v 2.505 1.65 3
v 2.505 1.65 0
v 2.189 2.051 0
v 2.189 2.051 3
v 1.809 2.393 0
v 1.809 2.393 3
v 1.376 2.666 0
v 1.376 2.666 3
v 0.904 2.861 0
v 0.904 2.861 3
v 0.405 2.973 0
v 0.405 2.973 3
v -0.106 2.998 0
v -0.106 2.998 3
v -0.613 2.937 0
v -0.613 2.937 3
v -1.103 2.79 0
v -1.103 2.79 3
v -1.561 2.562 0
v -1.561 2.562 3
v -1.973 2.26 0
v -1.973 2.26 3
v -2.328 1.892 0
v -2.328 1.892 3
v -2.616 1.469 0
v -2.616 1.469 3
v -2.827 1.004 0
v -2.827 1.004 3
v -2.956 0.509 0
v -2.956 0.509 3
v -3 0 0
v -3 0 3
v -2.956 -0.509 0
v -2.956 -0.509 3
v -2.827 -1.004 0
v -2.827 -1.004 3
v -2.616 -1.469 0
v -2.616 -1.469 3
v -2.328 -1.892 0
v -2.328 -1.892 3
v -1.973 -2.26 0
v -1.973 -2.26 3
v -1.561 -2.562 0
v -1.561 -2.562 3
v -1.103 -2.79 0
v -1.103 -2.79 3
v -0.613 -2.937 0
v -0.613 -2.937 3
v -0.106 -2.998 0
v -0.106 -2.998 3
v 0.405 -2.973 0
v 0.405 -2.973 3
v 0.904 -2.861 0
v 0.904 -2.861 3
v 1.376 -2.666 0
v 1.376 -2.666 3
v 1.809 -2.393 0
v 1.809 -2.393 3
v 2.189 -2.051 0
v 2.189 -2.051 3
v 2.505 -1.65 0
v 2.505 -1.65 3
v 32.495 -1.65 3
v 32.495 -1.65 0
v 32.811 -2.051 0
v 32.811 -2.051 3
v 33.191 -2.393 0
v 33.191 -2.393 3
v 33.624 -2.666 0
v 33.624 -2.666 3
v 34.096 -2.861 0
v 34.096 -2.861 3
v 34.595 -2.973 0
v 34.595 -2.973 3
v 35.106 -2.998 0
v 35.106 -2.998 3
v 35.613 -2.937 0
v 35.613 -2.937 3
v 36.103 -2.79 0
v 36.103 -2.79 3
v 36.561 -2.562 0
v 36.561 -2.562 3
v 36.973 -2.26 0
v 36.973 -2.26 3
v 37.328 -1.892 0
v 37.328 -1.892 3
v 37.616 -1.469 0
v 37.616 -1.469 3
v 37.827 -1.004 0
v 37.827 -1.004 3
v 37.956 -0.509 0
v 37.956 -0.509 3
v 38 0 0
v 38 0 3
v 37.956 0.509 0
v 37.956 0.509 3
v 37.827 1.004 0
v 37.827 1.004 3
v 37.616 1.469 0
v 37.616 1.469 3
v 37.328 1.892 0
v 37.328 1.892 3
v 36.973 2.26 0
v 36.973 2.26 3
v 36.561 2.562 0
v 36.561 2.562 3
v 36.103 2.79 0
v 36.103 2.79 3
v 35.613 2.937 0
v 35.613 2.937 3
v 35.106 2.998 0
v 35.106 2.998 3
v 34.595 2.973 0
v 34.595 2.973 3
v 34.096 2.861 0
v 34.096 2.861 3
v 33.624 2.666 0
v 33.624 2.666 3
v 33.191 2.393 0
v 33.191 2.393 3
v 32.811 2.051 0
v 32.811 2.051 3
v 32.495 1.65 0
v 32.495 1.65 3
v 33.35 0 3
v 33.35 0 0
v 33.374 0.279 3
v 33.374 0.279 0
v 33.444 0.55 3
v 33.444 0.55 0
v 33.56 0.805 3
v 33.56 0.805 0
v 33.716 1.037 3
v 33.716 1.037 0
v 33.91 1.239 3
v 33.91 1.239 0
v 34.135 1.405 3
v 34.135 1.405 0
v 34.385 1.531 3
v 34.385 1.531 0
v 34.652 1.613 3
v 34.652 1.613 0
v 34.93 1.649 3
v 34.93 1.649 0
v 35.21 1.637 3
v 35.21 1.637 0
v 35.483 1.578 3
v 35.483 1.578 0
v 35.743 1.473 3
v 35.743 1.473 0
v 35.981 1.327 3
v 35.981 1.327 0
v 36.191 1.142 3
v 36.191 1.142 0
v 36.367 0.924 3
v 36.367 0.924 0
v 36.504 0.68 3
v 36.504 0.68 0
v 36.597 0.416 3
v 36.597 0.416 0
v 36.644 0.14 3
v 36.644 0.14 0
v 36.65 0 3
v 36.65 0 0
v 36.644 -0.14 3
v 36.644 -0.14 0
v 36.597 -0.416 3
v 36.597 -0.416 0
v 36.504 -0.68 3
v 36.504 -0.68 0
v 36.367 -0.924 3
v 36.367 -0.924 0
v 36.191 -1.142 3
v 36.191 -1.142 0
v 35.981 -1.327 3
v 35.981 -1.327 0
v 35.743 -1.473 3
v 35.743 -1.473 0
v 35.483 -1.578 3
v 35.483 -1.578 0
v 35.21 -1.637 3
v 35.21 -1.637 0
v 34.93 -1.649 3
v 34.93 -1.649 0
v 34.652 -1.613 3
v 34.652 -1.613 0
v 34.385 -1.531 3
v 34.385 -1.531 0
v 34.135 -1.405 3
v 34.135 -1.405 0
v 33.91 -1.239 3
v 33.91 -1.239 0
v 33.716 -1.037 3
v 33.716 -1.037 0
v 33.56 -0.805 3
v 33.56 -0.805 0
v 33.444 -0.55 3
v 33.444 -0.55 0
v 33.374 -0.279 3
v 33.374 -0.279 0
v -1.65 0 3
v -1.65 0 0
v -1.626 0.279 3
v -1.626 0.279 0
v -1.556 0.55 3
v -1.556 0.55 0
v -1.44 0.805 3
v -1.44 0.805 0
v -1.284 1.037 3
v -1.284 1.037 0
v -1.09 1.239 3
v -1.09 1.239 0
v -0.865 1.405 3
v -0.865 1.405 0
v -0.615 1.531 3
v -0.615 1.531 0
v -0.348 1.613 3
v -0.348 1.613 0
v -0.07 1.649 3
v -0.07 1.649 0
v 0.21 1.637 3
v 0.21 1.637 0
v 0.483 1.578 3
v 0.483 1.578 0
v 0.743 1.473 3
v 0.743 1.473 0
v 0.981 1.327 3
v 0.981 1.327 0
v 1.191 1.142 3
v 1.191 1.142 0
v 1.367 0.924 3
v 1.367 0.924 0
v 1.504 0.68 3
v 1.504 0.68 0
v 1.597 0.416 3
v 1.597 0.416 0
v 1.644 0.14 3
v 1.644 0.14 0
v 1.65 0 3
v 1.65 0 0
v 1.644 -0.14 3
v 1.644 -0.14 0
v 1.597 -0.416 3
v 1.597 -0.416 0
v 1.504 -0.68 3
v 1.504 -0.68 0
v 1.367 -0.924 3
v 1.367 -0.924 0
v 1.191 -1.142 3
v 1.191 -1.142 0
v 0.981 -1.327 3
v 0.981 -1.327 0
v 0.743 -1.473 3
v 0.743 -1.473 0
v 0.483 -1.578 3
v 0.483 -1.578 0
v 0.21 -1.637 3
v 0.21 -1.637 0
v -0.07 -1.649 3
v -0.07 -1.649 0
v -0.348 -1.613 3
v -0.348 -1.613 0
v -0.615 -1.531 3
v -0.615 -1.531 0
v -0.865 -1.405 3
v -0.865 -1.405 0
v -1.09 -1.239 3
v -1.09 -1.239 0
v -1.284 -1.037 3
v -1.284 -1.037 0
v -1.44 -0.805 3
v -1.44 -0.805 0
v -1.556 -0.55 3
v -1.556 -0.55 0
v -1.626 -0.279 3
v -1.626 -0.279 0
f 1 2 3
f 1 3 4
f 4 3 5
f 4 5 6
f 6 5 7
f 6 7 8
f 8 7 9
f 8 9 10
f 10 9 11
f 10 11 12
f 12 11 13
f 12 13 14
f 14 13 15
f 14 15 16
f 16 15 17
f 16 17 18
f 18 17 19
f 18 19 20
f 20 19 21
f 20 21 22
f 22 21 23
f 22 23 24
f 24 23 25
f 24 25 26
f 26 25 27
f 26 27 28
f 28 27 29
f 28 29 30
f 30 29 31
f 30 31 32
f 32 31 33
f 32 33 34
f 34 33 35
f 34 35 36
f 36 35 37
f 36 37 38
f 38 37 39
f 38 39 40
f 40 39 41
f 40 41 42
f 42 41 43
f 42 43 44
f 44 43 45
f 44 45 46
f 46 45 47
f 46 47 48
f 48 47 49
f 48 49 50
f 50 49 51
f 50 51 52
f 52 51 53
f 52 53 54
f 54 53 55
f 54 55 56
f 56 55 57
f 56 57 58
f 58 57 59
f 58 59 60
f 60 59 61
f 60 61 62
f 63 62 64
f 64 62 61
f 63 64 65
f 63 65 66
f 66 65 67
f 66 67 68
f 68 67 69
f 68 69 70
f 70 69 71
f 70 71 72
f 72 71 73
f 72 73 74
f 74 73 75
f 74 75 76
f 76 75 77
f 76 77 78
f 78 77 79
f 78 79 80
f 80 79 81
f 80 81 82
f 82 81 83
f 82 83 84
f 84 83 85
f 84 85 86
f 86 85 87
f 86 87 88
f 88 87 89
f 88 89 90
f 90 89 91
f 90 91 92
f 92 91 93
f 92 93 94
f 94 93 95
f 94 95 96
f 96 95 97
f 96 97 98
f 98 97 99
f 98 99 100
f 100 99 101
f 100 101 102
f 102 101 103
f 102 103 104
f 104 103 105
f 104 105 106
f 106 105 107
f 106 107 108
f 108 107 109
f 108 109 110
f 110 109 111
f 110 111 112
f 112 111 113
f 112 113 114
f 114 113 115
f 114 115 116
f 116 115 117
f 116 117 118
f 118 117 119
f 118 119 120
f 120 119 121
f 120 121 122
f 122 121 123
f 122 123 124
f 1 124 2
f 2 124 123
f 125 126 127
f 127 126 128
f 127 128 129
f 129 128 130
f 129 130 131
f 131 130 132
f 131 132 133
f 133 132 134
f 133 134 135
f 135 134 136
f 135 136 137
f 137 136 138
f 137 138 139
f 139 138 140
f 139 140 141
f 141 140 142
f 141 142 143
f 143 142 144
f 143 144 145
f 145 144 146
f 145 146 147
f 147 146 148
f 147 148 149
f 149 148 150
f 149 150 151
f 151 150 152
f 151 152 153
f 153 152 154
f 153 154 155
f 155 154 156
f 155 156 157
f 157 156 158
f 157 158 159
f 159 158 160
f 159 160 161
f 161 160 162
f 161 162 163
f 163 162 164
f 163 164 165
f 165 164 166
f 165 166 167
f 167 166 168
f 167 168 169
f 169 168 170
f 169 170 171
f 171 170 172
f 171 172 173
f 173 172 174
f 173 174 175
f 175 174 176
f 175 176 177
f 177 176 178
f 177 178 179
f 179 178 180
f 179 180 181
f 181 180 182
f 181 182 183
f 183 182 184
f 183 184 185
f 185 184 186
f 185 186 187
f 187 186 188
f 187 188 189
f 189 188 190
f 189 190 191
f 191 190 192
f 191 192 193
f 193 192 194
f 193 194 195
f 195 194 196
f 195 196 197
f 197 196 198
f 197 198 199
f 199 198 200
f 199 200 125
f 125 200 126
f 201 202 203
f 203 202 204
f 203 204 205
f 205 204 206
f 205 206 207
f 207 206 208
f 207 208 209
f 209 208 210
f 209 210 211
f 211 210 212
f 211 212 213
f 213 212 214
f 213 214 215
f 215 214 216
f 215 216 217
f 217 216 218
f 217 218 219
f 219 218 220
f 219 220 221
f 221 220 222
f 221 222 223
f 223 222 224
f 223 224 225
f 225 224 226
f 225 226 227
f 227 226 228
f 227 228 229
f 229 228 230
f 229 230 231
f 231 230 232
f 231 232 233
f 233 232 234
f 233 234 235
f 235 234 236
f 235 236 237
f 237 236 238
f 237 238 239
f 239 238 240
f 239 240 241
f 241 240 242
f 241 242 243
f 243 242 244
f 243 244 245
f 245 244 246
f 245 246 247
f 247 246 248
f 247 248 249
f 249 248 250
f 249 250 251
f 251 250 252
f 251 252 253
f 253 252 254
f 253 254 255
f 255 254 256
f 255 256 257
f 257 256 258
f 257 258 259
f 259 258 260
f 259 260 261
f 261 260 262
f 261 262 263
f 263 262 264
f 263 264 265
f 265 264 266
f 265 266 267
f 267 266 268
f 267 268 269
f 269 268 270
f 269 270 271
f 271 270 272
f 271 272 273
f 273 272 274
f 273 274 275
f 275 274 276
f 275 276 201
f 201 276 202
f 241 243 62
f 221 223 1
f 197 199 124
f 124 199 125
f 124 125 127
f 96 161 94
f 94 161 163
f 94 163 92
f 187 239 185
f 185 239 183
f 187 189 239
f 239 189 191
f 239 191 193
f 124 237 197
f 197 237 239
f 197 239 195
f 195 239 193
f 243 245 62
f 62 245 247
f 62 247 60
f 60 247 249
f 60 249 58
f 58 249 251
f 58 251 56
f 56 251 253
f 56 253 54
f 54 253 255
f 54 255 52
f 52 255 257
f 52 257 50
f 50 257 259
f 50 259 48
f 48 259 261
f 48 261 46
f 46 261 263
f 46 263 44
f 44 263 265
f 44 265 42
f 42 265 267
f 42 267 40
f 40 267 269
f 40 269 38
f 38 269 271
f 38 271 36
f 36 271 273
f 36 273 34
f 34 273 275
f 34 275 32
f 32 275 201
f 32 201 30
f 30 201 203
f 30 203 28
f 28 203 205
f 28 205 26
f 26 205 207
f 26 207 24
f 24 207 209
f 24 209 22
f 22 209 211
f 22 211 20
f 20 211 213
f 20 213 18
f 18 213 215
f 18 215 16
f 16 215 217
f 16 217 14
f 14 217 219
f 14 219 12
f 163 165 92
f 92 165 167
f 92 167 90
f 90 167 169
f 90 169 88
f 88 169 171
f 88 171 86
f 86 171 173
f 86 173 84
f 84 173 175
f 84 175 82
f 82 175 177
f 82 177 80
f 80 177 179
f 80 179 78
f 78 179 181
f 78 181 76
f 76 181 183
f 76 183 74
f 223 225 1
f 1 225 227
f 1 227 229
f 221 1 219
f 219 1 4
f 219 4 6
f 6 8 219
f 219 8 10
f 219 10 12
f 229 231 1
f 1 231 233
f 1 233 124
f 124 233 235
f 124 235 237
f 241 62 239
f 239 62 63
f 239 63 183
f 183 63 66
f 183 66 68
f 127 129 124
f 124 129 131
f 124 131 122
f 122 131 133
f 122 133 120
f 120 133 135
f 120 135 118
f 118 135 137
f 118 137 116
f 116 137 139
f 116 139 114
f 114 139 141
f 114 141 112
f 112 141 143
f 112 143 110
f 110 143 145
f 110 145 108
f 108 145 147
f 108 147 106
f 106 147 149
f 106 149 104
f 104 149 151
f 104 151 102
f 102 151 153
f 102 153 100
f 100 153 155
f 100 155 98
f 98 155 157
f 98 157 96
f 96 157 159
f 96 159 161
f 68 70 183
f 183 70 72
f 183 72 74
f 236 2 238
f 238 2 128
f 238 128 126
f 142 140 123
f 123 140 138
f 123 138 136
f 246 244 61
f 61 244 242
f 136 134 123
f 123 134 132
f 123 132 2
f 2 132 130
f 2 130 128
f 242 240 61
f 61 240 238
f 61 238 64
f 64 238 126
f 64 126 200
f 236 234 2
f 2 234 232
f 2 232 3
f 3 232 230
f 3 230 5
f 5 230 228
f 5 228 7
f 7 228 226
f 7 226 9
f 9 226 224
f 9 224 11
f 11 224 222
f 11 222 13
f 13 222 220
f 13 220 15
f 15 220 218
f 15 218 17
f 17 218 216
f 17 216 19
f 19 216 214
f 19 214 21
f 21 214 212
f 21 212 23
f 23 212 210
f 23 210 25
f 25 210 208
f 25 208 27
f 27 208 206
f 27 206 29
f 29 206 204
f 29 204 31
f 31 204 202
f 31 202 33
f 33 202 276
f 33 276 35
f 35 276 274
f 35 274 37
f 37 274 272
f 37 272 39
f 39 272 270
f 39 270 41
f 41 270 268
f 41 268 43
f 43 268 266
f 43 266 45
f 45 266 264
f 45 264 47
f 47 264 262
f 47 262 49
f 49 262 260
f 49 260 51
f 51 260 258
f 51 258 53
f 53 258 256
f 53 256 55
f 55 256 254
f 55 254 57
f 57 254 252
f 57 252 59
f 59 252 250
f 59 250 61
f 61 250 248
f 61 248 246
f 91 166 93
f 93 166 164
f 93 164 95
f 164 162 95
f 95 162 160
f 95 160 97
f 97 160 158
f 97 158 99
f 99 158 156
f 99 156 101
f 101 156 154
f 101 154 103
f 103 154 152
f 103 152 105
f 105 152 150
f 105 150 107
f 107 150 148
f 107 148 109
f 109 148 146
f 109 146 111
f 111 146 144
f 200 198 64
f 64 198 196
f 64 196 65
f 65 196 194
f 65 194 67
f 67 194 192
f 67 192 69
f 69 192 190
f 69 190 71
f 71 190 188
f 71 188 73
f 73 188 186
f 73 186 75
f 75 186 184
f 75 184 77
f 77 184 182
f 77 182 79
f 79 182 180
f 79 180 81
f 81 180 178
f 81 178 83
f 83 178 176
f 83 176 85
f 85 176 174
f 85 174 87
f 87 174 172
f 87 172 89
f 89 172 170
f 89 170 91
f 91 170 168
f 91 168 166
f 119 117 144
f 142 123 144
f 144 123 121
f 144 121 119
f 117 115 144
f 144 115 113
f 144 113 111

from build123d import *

# Parameters (mm, degrees)
EXTRUDE_1_DEPTH = 3


with BuildPart() as part:
    # 草图1 → 凸台-拉伸1 (new body)
    with BuildSketch(Plane.XY):
        with BuildLine():
            Line((32.494506037, 1.65), (2.505493963, 1.65))
            ThreePointArc((2.505493963, 1.65), (2.87371553, 0.86125435), (3, 0))
            ThreePointArc((3, 0), (2.87371553, -0.86125435), (2.505493963, -1.65))
            Line((2.505493963, -1.65), (32.494506037, -1.65))
            ThreePointArc((32.494506037, -1.65), (32, 0), (32.494506037, 1.65))
        make_face()
        with BuildLine():
            ThreePointArc((0, -1.65), (-1.65, 0), (0, 1.65))
            Line((0, 1.65), (2.505493963, 1.65))
            ThreePointArc((2.505493963, 1.65), (-3, 0), (2.505493963, -1.65))
            Line((2.505493963, -1.65), (0, -1.65))
        make_face()
        with BuildLine():
            Line((2.505493963, 1.65), (0, 1.65))
            ThreePointArc((0, 1.65), (1.166726189, 1.166726189), (1.65, 0))
            ThreePointArc((1.65, 0), (1.166726189, -1.166726189), (0, -1.65))
            Line((0, -1.65), (2.505493963, -1.65))
            ThreePointArc((2.505493963, -1.65), (2.87371553, -0.86125435), (3, 0))
            ThreePointArc((3, 0), (2.87371553, 0.86125435), (2.505493963, 1.65))
        make_face()
        with BuildLine():
            ThreePointArc((38, 0), (35.86125435, 2.87371553), (32.494506037, 1.65))
            Line((32.494506037, 1.65), (35, 1.65))
            ThreePointArc((35, 1.65), (36.166726189, 1.166726189), (36.65, 0))
            ThreePointArc((36.65, 0), (36.166726189, -1.166726189), (35, -1.65))
            Line((35, -1.65), (32.494506037, -1.65))
            ThreePointArc((32.494506037, -1.65), (35.86125435, -2.87371553), (38, 0))
        make_face()
        with BuildLine():
            Line((35, 1.65), (32.494506037, 1.65))
            ThreePointArc((32.494506037, 1.65), (32, 0), (32.494506037, -1.65))
            Line((32.494506037, -1.65), (35, -1.65))
            ThreePointArc((35, -1.65), (33.35, 0), (35, 1.65))
        make_face()
    extrude(amount=EXTRUDE_1_DEPTH)


solid = part.part
